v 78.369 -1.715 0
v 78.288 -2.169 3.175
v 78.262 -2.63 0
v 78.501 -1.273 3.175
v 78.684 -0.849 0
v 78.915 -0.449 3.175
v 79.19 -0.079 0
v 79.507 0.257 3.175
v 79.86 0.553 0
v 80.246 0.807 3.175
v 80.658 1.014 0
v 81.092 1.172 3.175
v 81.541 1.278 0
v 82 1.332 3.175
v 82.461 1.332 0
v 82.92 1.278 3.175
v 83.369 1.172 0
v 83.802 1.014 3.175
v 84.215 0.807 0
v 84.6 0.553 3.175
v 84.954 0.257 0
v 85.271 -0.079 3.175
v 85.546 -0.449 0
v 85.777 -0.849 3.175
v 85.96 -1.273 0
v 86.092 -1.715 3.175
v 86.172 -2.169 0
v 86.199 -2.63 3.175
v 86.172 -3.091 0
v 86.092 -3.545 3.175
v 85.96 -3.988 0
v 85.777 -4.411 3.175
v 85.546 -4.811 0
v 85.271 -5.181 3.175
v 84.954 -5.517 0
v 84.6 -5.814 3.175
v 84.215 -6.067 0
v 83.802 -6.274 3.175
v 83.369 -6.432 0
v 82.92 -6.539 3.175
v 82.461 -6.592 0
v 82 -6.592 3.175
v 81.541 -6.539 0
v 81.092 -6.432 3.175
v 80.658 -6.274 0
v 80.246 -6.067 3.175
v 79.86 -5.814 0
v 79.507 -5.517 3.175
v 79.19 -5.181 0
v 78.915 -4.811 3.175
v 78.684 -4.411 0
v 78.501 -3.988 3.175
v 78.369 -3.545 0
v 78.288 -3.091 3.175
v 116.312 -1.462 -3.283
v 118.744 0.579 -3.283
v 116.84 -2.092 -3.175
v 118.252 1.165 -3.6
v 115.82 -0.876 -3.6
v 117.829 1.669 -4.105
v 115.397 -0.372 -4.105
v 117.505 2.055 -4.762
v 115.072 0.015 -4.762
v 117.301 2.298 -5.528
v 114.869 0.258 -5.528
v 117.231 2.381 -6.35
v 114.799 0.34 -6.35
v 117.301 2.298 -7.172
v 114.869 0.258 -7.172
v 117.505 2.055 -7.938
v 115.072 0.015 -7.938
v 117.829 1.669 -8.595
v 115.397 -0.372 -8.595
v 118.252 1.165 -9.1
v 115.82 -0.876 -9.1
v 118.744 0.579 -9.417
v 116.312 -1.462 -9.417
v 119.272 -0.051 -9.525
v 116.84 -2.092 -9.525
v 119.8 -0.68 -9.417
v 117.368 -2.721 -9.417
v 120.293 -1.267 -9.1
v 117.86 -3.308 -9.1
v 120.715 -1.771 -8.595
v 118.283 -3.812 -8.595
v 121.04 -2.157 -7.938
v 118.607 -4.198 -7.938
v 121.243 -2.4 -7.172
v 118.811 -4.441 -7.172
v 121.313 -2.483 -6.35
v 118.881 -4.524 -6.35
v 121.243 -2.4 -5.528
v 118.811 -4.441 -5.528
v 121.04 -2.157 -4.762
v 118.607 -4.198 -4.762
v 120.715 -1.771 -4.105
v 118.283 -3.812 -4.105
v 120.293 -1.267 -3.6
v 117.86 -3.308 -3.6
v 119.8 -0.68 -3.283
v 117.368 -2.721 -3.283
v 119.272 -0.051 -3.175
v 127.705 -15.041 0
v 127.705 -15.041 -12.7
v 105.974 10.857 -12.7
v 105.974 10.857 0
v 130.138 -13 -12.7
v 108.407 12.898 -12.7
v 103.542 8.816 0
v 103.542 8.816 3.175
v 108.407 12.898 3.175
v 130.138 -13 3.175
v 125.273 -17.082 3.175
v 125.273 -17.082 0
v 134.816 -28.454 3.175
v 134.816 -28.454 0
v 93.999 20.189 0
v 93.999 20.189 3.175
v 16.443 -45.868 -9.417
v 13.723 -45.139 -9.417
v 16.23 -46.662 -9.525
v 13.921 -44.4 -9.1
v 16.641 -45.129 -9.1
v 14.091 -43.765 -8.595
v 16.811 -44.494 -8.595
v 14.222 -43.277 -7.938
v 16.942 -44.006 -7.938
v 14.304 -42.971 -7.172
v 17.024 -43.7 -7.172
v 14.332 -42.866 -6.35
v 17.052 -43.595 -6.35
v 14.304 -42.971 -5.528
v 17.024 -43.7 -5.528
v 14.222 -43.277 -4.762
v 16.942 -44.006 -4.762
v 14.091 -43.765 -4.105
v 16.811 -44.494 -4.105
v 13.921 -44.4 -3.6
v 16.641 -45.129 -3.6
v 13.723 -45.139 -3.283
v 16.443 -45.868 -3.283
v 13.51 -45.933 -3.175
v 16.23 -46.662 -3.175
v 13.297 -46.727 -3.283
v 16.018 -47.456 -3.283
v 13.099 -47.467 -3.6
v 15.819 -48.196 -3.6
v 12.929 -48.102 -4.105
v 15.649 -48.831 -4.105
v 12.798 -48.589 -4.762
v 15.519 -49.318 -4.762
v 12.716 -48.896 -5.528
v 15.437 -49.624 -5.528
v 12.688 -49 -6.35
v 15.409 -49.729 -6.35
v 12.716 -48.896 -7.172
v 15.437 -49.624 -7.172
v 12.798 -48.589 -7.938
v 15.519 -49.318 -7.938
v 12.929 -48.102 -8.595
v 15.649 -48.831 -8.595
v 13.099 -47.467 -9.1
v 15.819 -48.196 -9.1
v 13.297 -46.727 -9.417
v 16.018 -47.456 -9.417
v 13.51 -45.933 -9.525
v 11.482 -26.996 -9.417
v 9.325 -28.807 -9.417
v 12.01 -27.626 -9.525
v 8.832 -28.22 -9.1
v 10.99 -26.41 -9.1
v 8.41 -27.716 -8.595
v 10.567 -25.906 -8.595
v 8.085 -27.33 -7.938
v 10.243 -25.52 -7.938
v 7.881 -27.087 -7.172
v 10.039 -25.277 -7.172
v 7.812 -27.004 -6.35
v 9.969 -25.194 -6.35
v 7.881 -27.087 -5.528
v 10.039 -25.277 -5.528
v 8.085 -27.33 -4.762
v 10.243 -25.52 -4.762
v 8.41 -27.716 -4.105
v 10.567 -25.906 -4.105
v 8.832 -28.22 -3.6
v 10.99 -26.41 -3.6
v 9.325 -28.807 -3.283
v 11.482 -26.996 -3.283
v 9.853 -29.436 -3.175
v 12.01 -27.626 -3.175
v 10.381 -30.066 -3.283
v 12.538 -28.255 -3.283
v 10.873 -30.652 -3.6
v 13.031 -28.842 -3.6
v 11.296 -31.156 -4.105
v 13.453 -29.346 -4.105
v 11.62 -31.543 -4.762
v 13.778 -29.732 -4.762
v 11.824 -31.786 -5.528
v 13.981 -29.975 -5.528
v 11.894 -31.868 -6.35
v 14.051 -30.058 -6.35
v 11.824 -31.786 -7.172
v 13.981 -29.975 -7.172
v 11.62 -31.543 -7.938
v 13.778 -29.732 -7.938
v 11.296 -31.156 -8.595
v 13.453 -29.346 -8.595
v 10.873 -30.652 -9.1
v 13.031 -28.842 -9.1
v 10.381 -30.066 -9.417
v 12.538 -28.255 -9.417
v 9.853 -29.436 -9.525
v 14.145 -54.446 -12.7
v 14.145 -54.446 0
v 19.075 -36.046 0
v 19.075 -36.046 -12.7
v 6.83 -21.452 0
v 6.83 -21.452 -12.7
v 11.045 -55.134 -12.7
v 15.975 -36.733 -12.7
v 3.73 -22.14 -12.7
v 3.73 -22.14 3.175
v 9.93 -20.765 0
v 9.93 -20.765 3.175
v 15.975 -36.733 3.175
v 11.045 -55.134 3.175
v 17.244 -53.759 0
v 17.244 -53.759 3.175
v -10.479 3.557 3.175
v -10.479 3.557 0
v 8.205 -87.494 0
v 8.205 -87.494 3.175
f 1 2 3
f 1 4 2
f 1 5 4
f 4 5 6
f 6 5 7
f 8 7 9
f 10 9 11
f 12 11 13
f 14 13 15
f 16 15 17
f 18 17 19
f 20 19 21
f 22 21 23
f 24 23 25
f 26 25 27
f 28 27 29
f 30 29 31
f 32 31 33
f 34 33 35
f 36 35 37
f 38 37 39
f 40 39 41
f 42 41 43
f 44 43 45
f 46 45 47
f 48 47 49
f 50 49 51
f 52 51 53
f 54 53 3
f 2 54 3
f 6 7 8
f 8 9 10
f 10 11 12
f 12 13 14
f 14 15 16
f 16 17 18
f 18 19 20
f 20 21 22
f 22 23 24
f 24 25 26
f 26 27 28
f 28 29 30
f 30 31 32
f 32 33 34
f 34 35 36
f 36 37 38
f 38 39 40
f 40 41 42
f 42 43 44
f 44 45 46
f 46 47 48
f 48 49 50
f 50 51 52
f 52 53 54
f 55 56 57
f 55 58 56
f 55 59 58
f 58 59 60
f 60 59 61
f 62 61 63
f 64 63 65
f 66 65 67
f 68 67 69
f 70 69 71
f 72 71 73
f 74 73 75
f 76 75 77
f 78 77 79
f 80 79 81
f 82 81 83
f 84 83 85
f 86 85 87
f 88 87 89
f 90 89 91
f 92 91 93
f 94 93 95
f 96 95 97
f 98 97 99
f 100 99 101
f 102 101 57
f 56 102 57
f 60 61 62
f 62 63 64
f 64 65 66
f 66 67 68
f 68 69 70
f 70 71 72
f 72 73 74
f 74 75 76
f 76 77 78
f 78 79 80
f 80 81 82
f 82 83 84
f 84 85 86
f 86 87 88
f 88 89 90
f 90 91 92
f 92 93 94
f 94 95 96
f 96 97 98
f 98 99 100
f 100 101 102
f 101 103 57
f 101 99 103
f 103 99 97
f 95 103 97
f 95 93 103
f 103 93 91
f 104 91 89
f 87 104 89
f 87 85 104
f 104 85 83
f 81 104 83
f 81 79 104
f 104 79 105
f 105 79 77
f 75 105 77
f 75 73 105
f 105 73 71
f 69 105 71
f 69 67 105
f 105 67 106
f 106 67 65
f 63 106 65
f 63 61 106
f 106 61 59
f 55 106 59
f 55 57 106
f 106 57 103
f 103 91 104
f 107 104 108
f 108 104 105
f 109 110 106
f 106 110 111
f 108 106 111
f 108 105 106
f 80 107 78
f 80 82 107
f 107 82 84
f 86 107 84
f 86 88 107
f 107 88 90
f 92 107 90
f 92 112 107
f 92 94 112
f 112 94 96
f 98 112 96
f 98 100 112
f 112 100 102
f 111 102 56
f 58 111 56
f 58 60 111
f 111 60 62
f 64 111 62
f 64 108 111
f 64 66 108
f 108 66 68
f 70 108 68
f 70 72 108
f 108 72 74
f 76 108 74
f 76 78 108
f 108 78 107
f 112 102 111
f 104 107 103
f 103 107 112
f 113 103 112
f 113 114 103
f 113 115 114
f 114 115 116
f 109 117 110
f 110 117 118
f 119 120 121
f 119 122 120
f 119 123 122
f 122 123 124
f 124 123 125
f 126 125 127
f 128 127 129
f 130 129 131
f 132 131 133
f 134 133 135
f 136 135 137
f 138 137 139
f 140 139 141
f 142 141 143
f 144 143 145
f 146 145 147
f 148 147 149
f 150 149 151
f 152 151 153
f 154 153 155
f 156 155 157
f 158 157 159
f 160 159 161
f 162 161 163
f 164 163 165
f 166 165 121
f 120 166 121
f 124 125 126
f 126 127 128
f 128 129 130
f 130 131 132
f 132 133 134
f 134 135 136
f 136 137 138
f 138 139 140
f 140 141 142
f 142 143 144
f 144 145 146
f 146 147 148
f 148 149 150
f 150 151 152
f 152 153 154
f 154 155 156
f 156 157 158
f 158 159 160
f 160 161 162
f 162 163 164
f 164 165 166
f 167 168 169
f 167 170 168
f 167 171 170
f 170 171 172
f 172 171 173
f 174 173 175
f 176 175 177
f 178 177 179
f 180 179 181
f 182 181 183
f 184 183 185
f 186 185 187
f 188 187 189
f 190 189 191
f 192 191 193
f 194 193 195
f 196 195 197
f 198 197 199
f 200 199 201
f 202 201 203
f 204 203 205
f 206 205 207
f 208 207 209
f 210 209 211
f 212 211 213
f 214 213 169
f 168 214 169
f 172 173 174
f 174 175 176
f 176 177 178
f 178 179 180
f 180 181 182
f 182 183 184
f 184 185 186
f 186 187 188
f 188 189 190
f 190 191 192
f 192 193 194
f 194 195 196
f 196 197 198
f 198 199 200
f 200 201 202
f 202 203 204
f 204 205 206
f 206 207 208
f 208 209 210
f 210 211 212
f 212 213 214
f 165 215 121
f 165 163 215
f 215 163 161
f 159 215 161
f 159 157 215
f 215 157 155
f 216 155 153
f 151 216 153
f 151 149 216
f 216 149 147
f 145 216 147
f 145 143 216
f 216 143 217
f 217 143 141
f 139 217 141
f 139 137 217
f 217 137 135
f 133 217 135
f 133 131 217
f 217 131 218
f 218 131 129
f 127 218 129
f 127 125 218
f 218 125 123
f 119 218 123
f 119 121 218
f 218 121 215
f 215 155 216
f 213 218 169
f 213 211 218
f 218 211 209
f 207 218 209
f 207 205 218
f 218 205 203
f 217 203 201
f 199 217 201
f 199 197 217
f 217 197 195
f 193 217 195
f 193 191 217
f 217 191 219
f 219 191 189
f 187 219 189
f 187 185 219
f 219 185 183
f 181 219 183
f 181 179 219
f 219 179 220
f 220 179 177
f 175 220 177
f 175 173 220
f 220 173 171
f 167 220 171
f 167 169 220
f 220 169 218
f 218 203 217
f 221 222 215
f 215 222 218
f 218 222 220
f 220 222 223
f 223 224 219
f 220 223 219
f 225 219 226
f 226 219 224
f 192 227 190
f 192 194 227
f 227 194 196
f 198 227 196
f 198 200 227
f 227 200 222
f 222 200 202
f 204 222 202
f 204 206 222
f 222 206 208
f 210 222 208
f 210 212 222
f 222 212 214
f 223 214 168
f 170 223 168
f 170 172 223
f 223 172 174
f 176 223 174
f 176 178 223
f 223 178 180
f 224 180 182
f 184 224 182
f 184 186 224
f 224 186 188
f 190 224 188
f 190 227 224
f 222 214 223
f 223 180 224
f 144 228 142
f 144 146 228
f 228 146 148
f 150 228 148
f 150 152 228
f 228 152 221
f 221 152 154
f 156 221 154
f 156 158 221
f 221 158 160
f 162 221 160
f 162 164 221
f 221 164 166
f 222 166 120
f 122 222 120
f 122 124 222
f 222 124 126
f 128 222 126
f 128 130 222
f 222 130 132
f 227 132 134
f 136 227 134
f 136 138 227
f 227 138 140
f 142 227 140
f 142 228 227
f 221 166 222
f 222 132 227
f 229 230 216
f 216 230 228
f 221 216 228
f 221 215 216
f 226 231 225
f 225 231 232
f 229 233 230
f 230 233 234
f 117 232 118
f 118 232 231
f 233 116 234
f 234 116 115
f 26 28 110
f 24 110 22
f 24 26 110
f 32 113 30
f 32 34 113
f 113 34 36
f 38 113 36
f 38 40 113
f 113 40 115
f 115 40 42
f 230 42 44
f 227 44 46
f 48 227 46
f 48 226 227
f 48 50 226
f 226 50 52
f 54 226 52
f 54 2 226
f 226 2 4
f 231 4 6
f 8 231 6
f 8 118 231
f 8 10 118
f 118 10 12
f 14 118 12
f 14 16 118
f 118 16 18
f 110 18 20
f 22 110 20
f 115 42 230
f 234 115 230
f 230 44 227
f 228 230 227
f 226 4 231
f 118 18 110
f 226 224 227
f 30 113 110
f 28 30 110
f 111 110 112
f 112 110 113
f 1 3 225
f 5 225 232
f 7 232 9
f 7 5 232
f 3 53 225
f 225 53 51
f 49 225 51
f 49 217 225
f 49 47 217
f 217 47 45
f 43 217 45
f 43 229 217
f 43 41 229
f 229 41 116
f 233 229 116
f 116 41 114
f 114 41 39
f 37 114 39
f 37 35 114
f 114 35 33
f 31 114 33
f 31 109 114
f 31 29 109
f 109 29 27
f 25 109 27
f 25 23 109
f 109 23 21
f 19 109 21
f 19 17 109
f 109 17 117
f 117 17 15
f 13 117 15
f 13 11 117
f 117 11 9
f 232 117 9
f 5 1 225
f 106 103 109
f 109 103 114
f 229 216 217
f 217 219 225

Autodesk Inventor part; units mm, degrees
ref_plane "YZ Plane" through (0, 0, 0) normal (1, 0, 0) x (0, 1, 0)
ref_plane "XZ Plane" through (0, 0, 0) normal (0, 1, 0) x (-1, 0, 0)
ref_plane "XY Plane" through (0, 0, 0) normal (0, 0, 1) x (1, 0, 0)
sketch "Sketch1" plane through (0, 0, 0) normal (0, 0, 1) x (1, 0, 0)
  line L0 (-10.4788, 3.5567) -> (22.1748, -35.3584)
  line L1 (-10.4788, 3.5567) -> (40.3212, 3.5567) construction
  line L2 (22.1748, -35.3584) -> (8.205, -87.4942)
  line L3 (8.205, -87.4942) -> (134.8162, -28.4545)
  line L4 (134.8162, -28.4545) -> (93.9992, 20.1894)
  line L5 (93.9992, 20.1894) -> (-10.4788, 3.5567)
  point P0 (0, 0)
  dimension "d0" = 50.8
  dimension "d1" = 50
  dimension "d2" = 53.975
  dimension "d3" = 125
  dimension "d4" = 139.7
  dimension "d5" = 50
  dimension "d6" = 63.5
  dimension "d7" = 75
extrude "Extrusion1" add sketch "Sketch1" along normal blind 3.175
sketch "Sketch2" plane through (0, 0, 3.175) normal (0, 0, 1) x (1, 0, 0)
  line L0 (-10.4788, 3.5567) -> (22.1748, -35.3584) projected
  line L1 (22.1748, -35.3584) -> (8.205, -87.4942) projected
  line L2 (22.1748, -35.3584) -> (9.9297, -20.7652)
  line L3 (22.1748, -35.3584) -> (17.2443, -53.7593)
  line L4 (9.9297, -20.7652) -> (3.7302, -22.1396)
  line L5 (17.2443, -53.7593) -> (11.0448, -55.1337)
  line L6 (15.9753, -36.7328) -> (3.7302, -22.1396)
  line L7 (15.9753, -36.7328) -> (11.0448, -55.1337)
  point P0 (0, 0)
  dimension "d10" = 19.05
  dimension "d11" = 19.05
  dimension "d12" = 6.35
  dimension "d13" = 6.35
  dimension "d14" = 6.35
extrude "Extrusion2" add sketch "Sketch2" against normal blind 3.175
sketch "Sketch3" plane through (0, 0, 0) normal (0, 0, -1) x (-1, 0, 0)
  line L0 (-17.2443, -53.7593) -> (-11.0448, -55.1337) projected
  line L1 (-11.0448, -55.1337) -> (-15.9753, -36.7328) projected
  line L2 (-15.9753, -36.7328) -> (-3.7302, -22.1396) projected
  line L3 (-3.7302, -22.1396) -> (-9.9297, -20.7652) projected
  line L4 (-3.7302, -22.1396) -> (-6.83, -21.4524)
  line L5 (-11.0448, -55.1337) -> (-14.1446, -54.4465)
  line L6 (-14.1446, -54.4465) -> (-19.0751, -36.0456)
  line L7 (-6.83, -21.4524) -> (-19.0751, -36.0456)
  point P0 (0, 0)
  dimension "d17" = 3.175
  dimension "d18" = 3.175
extrude "Extrusion3" add sketch "Sketch3" along normal blind 12.7
sketch "Sketch4" plane through (3.7302, -22.1396, -12.7) normal (-0.7660444, -0.6427876, 0) x (0, 0, 1)
  line L0 (0, -19.05) -> (0, 0) projected
  line L1 (15.875, -19.05) -> (0, -19.05) projected
  line L2 (0, -9.525) -> (6.35, -9.525)
  point P0 (12.7, 19.3577)
  dimension "d21" = 6.35
hole "Hole1" at (9.8528, -29.4362, -6.35) direction (0.7660444, 0.6427876, 0) diameter 6.35 end through all
sketch "Sketch5" plane through (15.9753, -36.7328, -12.7) normal (-0.9659258, 0.258819, 0) x (0, 0, 1)
  line L0 (0, -19.05) -> (0, 0) projected
  line L1 (15.875, -19.05) -> (0, -19.05) projected
  line L2 (0, -9.525) -> (6.35, -9.525)
  point P0 (12.7, 31.3464)
  dimension "d29" = 6.35
hole "Hole2" at (13.5101, -45.9332, -6.35) direction (0.9659258, -0.258819, 0) diameter 6.35 end through all
sketch "Sketch6" plane through (0, 0, 0) normal (0, 0, -1) x (-1, 0, 0)
  line L0 (-134.8162, -28.4545) -> (-93.9992, 20.1894) projected
  line L1 (-114.4077, -4.1326) -> (-103.5422, 8.8164)
  line L2 (-114.4077, -4.1326) -> (-125.2732, -17.0815)
  line L3 (-125.2732, -17.0815) -> (-130.1376, -12.9998)
  line L4 (-130.1376, -12.9998) -> (-108.4066, 12.8981)
  line L5 (-108.4066, 12.8981) -> (-103.5422, 8.8164)
  point P0 (0, 0)
  dimension "d37" = 16.9037
  dimension "d38" = 16.9037
  dimension "d39" = 6.35
  dimension "d40" = 33.8074
extrude "Extrusion4" add sketch "Sketch6" against normal blind 3.175
sketch "Sketch7" plane through (0, 0, 0) normal (0, 0, -1) x (-1, 0, 0)
  line L0 (-103.5422, 8.8164) -> (-108.4066, 12.8981) projected
  line L1 (-108.4066, 12.8981) -> (-130.1376, -12.9998) projected
  line L2 (-130.1376, -12.9998) -> (-125.2732, -17.0815) projected
  line L3 (-108.4066, 12.8981) -> (-130.1376, -12.9998)
  line L4 (-130.1376, -12.9998) -> (-127.7054, -15.0407)
  line L5 (-127.7054, -15.0407) -> (-105.9744, 10.8573)
  line L6 (-105.9744, 10.8573) -> (-108.4066, 12.8981)
  point P0 (0, 0)
  dimension "d43" = 3.175
extrude "Extrusion5" add sketch "Sketch7" along normal blind 12.7
sketch "Sketch8" plane through (108.4066, 12.8981, 3.175) normal (0.7660444, 0.6427876, 0) x (0, 0, -1)
  line L0 (15.875, 0) -> (15.875, -33.8074) projected
  line L1 (15.875, -16.9037) -> (9.525, -16.9037)
  point P0 (3.175, 59.8019)
  dimension "d46" = 6.35
hole "Hole3" at (119.2721, -0.0509, -6.35) direction (-0.7660444, -0.6427876, 0) diameter 6.35 end through all
sketch "Sketch9" plane through (0, 0, 3.175) normal (0, 0, 1) x (1, 0, 0)
  line L0 (130.1376, -12.9998) -> (108.4066, 12.8981) projected
  line L1 (103.5422, 8.8164) -> (93.9992, 20.1894) projected
  line L2 (93.9992, 20.1894) -> (-10.4788, 3.5567) projected
  line L3 (71.6563, 16.6324) -> (76.7318, -15.2495)
  line L4 (111.0345, 9.7664) -> (80.0581, -16.2259)
  line L5 (80.0581, -16.2259) -> (74.7441, -9.893)
  line L6 (76.7318, -15.2495) -> (78.9434, -14.8974)
  line L7 (17.2443, -53.7593) -> (8.205, -87.4942) projected
  line L8 (11.0448, -55.1337) -> (34.2557, 31.4904)
  line L9 (78.9434, -14.8974) -> (25.6522, -0.6181)
  line L10 (78.9434, -14.8974) -> (82.2304, -2.6302)
  point P0 (0, 0)
  dimension "d54" = 32.2834
  dimension "d55" = 40.4368
  dimension "d71" = 12.7
hole "Hole6" at (82.2304, -2.6302, 3.175) direction (0, 0, -1) diameter 7.9375 end through all
properties part number "Right Bicep"
